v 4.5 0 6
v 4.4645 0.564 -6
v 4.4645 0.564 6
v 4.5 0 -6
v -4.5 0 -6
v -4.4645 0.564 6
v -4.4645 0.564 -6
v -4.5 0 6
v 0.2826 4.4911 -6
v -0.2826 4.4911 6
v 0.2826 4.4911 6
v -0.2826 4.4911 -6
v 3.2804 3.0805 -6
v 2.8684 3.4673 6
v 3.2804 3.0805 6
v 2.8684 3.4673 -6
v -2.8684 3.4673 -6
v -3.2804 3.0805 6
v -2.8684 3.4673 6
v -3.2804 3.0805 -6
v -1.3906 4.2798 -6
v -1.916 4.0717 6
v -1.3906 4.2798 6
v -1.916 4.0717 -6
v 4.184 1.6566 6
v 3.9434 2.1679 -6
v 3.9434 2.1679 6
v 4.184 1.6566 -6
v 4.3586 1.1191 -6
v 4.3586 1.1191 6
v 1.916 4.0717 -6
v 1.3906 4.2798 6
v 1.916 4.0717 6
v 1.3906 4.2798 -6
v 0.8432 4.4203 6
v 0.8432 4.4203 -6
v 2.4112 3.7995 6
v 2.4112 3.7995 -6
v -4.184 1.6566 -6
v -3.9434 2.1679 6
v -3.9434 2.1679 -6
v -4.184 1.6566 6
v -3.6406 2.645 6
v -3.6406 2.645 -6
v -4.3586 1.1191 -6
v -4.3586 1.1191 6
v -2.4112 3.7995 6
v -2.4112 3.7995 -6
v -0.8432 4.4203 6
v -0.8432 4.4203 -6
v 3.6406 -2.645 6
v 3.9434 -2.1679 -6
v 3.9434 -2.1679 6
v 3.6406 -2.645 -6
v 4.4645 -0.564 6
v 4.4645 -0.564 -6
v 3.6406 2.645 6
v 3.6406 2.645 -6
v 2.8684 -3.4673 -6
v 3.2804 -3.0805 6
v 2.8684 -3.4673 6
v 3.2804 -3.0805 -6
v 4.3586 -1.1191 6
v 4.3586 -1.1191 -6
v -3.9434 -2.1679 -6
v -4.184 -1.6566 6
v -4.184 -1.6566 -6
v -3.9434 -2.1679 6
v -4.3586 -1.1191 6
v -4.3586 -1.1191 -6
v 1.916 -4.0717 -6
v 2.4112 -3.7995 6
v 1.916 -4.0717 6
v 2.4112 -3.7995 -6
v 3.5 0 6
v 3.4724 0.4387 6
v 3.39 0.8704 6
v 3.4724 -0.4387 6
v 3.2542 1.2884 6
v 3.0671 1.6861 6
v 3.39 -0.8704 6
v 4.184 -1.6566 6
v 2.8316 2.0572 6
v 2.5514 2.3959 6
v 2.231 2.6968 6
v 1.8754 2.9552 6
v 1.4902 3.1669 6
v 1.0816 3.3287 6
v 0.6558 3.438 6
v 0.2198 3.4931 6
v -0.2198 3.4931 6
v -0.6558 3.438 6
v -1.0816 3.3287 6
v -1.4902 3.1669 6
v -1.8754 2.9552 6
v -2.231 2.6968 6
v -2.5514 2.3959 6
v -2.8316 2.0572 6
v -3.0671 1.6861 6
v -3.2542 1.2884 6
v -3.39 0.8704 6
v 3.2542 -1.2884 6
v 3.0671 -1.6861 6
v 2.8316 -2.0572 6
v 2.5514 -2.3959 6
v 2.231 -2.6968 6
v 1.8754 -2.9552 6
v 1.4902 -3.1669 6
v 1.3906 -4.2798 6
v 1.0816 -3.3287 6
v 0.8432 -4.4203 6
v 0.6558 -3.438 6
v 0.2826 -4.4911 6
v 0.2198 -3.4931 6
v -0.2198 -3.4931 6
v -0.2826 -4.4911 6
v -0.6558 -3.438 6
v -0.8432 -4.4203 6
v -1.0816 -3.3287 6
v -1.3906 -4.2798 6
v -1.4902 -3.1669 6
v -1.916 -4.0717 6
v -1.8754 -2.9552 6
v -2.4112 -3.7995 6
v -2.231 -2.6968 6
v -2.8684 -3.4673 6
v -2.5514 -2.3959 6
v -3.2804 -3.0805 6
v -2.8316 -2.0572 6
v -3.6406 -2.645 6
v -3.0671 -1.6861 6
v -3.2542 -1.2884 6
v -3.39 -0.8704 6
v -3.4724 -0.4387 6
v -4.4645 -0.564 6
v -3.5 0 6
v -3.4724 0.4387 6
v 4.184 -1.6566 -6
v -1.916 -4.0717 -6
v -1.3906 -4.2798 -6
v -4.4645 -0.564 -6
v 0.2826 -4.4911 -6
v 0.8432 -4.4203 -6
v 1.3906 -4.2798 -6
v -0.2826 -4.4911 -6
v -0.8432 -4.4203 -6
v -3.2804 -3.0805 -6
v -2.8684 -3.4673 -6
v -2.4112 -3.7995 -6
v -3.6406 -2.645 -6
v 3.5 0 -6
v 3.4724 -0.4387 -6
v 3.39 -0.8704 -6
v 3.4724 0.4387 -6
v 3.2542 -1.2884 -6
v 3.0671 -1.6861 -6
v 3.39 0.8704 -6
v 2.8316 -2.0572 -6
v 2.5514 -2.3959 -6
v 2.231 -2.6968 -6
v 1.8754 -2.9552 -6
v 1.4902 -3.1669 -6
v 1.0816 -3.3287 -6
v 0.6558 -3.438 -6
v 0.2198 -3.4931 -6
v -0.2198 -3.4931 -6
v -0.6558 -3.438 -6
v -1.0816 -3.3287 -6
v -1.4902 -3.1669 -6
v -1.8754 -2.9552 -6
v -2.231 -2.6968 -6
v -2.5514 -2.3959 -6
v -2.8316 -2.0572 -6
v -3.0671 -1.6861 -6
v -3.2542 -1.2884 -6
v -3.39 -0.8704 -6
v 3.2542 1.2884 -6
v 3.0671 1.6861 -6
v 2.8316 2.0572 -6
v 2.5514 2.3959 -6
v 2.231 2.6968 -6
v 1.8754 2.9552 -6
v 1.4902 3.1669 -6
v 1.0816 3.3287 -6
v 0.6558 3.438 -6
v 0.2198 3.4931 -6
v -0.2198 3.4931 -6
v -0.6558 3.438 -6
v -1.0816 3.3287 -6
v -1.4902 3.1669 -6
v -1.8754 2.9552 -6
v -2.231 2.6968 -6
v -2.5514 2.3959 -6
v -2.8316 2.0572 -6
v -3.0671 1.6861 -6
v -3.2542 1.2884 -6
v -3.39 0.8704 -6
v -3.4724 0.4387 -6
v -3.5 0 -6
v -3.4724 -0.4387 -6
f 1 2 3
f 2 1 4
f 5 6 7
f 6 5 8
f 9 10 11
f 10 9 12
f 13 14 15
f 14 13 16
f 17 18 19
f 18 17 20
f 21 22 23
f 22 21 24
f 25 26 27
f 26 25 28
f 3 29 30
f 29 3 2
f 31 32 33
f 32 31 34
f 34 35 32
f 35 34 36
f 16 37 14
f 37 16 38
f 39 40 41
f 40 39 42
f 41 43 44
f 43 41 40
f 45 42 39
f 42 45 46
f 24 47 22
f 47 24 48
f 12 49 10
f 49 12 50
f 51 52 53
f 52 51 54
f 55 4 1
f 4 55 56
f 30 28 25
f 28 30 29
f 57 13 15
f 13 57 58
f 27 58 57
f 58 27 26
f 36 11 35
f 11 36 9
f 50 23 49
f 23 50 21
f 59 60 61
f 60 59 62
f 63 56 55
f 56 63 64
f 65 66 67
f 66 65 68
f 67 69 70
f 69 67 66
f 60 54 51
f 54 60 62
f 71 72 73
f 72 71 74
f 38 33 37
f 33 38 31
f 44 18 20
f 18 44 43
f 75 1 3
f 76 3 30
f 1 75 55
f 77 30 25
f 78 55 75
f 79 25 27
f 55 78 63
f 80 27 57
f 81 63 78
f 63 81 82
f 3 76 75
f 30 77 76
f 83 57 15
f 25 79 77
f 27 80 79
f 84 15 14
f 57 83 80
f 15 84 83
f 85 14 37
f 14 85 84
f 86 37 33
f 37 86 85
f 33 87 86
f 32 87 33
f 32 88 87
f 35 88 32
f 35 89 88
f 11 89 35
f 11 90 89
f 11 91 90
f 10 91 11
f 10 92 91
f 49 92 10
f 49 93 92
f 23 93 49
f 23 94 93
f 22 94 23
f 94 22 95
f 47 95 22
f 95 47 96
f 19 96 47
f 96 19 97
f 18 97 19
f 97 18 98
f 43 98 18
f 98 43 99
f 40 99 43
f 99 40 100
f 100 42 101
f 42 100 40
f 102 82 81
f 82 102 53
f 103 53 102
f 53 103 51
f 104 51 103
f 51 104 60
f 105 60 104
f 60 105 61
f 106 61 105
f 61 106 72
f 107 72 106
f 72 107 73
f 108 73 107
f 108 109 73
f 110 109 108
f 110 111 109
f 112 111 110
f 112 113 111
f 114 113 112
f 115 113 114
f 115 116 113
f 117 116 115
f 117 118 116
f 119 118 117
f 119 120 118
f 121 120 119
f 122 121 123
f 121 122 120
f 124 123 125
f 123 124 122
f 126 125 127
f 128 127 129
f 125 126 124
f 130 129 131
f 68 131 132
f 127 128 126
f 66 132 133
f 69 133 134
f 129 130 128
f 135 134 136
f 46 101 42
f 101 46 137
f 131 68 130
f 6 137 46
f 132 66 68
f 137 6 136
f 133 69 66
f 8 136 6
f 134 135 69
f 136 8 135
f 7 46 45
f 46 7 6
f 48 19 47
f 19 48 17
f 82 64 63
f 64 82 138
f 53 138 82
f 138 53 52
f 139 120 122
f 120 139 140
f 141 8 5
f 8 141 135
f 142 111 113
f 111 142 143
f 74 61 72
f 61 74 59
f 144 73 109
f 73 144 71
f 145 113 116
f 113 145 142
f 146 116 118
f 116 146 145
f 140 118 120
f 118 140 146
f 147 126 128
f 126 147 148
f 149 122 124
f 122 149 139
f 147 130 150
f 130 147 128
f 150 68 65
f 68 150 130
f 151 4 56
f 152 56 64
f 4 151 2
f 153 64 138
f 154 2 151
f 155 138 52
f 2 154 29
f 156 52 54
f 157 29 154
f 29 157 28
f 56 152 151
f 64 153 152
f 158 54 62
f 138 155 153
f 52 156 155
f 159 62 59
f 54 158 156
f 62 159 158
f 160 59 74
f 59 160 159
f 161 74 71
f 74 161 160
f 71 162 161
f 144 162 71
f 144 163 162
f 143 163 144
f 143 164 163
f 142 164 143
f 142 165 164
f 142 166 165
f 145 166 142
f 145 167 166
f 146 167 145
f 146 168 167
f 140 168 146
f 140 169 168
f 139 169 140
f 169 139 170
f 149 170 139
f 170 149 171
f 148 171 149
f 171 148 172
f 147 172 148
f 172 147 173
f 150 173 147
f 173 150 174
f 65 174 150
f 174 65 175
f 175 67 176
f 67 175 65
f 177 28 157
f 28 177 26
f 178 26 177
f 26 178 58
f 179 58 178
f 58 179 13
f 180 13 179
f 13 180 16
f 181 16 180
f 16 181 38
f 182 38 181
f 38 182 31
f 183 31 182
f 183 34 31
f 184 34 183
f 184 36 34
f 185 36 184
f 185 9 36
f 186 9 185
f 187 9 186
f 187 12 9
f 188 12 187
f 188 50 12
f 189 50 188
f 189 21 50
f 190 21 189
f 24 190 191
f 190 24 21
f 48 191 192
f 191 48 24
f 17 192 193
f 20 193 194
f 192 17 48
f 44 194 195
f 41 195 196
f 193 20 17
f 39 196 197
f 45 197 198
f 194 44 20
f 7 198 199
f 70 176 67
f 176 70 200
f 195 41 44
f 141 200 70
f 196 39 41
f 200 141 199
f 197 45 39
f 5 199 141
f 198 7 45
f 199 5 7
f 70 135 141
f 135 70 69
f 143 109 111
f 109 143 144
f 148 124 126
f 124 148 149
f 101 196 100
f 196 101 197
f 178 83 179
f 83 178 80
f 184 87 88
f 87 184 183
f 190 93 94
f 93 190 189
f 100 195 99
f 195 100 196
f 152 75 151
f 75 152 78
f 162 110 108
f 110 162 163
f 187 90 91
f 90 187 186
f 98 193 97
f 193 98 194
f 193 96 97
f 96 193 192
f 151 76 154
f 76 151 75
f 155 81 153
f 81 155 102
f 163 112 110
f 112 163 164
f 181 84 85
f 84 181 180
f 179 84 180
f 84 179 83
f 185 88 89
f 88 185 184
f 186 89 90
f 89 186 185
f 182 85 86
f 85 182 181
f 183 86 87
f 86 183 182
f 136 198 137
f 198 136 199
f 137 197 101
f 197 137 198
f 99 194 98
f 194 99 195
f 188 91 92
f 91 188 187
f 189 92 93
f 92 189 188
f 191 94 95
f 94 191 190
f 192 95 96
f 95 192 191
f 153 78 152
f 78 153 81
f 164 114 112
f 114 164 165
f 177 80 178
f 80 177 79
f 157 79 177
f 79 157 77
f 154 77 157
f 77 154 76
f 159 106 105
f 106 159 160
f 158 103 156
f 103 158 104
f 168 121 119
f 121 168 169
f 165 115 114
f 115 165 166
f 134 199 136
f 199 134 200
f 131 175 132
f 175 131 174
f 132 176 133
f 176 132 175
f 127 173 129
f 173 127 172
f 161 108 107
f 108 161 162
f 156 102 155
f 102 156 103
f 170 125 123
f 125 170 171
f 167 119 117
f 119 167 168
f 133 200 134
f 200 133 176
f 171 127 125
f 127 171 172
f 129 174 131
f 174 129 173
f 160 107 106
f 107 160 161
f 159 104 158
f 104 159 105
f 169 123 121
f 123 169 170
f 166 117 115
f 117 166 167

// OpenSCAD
$fn = 50;


difference() {
	union() {
		translate(v = [0, 0, -6.0000000000]) {
			cylinder(h = 12, r = 4.5000000000);
		}
	}
	union() {
		translate(v = [0, 0, -100.0000000000]) {
			cylinder(h = 200, r = 3.5000000000);
		}
	}
}
